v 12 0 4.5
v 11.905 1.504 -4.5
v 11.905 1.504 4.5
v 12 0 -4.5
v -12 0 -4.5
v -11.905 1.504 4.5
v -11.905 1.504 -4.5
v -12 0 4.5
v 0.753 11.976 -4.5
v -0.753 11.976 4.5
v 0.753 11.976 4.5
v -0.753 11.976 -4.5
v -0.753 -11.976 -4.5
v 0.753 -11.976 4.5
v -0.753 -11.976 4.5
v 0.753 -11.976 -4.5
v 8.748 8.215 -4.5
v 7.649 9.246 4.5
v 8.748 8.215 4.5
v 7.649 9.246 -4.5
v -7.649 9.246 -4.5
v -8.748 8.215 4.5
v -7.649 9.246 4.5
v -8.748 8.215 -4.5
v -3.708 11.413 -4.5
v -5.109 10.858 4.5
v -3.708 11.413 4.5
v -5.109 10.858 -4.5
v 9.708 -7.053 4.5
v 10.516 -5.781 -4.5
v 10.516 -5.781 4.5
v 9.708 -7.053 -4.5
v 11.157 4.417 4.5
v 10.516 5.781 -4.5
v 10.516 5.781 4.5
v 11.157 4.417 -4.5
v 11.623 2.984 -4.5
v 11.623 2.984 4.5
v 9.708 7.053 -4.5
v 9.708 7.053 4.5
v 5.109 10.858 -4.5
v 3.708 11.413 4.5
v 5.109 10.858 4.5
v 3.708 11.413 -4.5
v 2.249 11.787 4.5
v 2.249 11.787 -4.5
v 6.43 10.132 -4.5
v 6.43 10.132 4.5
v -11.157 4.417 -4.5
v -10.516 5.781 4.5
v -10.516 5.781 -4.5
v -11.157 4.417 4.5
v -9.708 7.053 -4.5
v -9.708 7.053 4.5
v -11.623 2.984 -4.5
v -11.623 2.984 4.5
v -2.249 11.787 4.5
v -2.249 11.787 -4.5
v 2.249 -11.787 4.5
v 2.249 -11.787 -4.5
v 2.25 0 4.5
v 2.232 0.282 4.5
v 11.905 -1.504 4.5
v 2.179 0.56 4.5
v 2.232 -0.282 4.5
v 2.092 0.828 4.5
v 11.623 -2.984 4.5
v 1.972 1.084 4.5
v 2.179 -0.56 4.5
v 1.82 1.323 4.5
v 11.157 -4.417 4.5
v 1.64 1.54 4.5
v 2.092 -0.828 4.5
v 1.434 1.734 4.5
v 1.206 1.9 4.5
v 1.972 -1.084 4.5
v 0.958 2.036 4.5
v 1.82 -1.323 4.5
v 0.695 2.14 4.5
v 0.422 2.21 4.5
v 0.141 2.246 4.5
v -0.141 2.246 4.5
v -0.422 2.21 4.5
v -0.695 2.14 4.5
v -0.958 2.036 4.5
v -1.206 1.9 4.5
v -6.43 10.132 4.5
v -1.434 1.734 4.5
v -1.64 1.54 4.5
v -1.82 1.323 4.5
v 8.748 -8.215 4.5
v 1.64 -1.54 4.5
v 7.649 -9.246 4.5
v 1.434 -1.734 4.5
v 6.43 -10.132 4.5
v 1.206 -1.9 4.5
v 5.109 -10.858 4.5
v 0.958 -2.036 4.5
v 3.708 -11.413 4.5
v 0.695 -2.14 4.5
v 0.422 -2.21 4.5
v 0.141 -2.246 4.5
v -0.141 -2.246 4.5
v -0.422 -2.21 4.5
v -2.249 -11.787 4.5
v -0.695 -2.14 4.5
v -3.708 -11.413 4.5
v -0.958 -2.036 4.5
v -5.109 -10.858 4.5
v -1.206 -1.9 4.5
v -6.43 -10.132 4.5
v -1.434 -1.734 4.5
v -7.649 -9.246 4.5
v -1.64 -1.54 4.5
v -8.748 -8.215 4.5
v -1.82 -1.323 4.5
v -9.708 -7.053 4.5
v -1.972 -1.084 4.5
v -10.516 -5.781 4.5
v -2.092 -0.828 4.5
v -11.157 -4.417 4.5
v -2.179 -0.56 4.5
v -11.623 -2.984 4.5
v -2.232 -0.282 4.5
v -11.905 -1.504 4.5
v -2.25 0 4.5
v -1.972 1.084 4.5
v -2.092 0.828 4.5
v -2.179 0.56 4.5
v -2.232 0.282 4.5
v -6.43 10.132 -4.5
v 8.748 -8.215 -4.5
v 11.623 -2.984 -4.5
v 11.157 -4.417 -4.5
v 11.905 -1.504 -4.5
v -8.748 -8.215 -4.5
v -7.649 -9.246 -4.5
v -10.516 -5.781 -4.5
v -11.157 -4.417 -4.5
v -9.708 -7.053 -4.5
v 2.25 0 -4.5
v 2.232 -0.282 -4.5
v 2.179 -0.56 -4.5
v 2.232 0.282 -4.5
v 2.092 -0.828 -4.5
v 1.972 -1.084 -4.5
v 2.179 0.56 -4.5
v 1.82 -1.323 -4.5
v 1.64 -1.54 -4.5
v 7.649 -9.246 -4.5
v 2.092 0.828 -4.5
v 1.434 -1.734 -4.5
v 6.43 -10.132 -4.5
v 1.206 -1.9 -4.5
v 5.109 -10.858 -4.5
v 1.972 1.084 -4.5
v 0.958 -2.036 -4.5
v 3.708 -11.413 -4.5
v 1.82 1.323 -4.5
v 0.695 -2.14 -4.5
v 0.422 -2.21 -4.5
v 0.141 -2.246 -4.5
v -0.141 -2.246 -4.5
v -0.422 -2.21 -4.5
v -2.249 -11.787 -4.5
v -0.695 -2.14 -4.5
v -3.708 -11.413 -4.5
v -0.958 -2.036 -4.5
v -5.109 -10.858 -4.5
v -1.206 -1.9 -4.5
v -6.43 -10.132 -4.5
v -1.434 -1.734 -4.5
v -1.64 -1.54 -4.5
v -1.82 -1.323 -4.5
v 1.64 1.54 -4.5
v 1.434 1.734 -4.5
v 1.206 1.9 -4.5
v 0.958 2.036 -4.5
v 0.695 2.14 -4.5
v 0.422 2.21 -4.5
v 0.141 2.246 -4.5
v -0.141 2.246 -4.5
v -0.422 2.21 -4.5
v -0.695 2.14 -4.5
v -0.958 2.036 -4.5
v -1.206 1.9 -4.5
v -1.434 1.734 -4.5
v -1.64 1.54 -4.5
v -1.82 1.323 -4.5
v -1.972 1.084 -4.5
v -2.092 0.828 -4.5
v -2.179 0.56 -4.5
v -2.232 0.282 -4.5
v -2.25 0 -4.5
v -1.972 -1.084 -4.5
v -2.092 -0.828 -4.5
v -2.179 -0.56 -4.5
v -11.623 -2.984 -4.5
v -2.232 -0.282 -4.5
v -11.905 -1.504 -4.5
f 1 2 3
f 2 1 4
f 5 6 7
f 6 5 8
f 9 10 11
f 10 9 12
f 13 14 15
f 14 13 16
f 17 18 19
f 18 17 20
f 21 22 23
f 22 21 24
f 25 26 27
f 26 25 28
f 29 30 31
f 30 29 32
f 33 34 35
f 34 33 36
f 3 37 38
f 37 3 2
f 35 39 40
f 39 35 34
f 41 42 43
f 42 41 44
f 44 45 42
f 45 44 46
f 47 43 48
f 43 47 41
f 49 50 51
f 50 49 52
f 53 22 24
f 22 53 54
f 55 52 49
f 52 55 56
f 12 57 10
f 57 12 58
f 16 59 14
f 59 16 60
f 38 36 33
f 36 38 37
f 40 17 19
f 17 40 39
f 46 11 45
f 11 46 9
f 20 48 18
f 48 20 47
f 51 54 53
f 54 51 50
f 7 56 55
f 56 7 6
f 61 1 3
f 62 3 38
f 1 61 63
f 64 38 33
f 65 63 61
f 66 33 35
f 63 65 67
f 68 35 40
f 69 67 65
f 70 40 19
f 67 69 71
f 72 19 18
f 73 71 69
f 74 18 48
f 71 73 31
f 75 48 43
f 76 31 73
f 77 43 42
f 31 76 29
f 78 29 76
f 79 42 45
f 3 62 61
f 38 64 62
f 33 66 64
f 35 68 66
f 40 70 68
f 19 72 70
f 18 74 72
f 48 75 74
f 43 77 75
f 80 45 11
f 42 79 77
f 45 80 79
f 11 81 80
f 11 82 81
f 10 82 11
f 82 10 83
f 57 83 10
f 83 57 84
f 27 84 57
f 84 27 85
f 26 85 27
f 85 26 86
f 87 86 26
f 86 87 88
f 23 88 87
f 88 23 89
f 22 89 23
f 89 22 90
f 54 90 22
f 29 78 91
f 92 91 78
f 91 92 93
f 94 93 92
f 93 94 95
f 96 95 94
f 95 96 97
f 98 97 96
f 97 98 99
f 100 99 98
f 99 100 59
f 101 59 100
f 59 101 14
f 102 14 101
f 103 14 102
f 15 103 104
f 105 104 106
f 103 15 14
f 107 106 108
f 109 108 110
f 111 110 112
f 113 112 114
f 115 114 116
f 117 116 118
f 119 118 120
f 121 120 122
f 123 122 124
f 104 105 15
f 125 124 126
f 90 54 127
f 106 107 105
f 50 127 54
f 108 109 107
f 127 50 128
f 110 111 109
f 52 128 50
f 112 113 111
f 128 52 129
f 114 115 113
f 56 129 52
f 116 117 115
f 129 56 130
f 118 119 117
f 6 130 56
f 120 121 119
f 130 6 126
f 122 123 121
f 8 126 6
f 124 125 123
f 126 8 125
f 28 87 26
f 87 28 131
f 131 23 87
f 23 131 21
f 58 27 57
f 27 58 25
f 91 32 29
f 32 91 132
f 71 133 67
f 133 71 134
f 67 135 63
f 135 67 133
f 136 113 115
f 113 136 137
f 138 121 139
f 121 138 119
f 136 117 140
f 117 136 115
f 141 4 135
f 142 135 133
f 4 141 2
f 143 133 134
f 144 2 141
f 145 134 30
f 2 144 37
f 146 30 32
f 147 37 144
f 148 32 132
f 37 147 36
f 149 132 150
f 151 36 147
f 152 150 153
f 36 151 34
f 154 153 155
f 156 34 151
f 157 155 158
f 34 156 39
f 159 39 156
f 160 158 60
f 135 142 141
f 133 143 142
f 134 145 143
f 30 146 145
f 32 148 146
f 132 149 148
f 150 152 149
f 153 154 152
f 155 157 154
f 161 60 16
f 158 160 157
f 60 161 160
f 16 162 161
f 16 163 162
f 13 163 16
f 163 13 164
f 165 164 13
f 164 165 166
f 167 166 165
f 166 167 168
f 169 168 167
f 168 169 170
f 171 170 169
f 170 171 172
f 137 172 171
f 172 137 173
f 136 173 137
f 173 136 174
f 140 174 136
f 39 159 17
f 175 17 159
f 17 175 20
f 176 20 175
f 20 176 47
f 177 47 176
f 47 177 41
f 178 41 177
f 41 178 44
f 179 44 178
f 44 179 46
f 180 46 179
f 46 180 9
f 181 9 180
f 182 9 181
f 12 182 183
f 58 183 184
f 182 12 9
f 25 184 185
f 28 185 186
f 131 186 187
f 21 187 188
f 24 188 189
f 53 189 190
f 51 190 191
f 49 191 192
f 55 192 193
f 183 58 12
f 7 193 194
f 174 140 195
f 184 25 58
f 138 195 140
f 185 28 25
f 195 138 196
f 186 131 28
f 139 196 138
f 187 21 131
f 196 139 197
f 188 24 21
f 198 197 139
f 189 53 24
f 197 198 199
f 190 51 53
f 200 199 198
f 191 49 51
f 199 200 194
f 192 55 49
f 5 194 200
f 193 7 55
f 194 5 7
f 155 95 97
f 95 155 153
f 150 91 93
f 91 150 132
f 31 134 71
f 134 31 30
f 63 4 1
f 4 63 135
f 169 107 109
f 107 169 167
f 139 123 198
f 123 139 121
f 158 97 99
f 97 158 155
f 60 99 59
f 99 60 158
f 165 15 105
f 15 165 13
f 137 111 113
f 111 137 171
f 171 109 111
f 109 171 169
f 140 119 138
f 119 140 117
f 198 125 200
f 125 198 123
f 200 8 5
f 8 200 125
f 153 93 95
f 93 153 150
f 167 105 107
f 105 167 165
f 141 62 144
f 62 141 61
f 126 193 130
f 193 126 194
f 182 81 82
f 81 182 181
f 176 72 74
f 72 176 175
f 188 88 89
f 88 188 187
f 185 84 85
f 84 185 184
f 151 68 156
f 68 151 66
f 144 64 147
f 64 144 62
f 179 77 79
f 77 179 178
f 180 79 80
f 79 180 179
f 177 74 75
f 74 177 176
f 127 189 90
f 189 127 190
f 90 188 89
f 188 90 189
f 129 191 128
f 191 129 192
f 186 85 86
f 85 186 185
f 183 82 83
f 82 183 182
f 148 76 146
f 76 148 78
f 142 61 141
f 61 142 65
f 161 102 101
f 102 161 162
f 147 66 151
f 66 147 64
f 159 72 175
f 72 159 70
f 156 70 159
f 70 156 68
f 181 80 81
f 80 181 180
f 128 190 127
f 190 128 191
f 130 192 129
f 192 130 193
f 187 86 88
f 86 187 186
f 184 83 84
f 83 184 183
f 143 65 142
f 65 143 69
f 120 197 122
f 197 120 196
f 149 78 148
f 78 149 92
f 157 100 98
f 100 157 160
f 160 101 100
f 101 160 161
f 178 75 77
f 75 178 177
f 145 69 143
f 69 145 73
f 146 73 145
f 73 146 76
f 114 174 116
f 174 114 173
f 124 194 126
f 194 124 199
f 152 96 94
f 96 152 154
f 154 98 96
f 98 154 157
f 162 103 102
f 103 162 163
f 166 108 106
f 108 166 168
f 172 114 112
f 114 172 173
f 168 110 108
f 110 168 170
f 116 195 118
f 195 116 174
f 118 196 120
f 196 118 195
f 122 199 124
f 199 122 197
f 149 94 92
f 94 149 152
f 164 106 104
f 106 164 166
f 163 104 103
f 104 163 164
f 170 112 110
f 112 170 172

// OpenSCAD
$fn = 50;


difference() {
	union() {
		translate(v = [0, 0, -4.5000000000]) {
			cylinder(h = 9, r = 12.0000000000);
		}
	}
	union() {
		translate(v = [0, 0, -100.0000000000]) {
			cylinder(h = 200, r = 2.2500000000);
		}
	}
}
